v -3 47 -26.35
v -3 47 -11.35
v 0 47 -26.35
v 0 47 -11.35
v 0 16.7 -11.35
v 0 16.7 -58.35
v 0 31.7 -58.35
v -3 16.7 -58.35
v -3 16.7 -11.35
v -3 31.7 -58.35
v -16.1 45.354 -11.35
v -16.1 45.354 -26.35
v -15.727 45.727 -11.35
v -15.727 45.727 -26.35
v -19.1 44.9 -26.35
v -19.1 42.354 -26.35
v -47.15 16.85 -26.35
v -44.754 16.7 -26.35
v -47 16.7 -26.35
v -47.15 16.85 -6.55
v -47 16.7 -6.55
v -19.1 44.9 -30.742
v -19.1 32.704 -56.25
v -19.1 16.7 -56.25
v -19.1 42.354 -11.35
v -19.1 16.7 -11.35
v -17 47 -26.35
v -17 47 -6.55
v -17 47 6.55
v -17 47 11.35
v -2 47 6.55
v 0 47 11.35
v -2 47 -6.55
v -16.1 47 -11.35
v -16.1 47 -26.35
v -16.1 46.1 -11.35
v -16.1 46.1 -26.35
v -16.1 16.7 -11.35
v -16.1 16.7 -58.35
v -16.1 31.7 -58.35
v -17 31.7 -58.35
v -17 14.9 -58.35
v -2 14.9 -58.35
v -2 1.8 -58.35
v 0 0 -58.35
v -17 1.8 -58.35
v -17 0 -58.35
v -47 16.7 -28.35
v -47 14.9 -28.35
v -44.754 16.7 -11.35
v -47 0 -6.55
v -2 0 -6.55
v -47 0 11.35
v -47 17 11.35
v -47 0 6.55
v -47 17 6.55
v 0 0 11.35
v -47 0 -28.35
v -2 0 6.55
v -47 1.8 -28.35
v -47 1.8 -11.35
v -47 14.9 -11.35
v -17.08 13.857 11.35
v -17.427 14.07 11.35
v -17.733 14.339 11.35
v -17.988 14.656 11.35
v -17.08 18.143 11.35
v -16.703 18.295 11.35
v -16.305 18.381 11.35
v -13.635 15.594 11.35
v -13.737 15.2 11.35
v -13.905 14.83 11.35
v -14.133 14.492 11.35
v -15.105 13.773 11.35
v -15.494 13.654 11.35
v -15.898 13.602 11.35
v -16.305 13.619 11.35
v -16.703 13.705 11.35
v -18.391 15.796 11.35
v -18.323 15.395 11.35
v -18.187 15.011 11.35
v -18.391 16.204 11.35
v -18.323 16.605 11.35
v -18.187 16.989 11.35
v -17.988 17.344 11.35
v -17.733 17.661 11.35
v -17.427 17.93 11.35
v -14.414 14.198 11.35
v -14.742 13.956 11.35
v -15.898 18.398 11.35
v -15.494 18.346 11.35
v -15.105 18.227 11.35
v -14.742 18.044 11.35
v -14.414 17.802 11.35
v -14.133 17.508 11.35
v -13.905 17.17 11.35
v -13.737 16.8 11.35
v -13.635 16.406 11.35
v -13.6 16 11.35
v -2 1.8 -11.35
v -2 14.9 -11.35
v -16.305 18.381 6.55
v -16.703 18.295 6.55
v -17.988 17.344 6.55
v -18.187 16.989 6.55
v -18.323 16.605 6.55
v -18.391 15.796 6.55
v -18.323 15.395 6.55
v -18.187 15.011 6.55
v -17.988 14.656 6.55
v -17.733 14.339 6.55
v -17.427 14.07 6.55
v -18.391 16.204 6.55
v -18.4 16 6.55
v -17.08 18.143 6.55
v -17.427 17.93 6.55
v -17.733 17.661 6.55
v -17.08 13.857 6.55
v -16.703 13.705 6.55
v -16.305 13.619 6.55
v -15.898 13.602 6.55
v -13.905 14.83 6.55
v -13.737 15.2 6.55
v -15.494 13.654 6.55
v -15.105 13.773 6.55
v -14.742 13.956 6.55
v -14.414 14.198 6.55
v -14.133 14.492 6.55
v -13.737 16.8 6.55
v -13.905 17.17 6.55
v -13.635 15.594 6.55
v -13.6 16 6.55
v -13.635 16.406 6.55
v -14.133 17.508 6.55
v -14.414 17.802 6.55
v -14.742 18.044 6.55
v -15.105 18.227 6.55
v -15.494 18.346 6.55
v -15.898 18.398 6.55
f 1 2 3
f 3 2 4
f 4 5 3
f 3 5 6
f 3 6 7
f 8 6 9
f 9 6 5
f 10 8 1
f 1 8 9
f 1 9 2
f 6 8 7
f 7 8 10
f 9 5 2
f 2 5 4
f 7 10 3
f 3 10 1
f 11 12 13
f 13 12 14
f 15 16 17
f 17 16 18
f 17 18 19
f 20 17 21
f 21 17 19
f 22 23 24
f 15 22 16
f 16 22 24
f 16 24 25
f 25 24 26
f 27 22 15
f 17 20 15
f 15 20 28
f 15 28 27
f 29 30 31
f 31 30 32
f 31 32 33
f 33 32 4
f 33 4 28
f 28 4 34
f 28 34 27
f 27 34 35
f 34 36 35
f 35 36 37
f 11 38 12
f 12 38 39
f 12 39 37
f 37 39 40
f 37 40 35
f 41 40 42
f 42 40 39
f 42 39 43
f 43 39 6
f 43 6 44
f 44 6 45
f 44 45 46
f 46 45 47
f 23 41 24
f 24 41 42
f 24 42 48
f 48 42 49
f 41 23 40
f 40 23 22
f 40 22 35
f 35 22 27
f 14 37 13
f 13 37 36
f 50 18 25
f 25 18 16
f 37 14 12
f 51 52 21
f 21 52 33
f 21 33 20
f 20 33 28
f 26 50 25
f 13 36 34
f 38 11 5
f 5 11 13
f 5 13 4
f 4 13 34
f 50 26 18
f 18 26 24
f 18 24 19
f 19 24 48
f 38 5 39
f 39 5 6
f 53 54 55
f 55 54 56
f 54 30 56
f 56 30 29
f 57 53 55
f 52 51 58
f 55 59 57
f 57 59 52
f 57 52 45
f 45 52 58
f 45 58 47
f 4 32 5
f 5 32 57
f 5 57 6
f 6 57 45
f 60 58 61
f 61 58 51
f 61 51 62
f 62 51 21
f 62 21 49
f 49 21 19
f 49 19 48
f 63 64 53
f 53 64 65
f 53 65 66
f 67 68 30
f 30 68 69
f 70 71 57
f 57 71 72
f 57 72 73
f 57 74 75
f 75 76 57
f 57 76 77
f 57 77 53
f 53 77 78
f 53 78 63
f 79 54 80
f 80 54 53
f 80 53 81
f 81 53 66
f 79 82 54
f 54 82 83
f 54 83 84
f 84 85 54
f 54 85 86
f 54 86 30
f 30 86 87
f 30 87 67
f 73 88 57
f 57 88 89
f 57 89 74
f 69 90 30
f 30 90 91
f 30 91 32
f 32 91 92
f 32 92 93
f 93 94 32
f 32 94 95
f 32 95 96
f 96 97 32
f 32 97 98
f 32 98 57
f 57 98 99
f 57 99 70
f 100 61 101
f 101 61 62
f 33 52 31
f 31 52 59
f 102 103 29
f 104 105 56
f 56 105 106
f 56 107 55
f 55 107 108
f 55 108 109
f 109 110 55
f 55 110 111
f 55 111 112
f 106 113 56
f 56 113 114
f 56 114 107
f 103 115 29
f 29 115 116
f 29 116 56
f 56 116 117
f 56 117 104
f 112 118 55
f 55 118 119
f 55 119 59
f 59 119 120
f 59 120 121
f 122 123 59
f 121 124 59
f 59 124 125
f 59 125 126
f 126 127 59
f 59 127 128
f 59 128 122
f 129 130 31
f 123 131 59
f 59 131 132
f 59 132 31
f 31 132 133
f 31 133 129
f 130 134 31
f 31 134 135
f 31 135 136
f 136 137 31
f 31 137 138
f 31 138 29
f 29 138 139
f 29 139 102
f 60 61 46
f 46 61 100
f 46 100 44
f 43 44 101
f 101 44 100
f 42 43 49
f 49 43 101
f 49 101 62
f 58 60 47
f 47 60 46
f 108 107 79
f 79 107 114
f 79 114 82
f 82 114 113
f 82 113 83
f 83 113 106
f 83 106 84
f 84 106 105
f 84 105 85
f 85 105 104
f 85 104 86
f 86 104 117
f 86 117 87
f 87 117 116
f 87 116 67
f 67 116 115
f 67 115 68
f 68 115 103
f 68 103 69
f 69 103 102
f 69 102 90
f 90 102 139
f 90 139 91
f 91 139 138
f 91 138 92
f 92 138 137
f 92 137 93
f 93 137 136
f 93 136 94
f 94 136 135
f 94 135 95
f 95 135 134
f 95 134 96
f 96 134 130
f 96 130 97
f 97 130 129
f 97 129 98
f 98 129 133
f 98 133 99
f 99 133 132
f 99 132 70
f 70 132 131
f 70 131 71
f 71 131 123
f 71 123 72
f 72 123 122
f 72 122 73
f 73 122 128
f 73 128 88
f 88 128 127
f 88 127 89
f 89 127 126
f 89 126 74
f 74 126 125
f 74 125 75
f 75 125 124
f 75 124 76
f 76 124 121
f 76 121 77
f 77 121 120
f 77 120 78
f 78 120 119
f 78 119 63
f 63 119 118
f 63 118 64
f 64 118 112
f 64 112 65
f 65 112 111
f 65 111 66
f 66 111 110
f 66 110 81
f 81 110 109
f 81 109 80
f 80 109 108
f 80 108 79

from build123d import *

# Parameters (mm, degrees)
BOSS_EXTRUDE1_DEPTH     = 11.35
CUT_EXTRUDE1_DEPTH      = 6.55
BOSS_EXTRUDE2_DEPTH     = 47
SKETCH5_W               = 3
SKETCH5_H               = 30.3
BOSS_EXTRUDE3_DEPTH     = 47
BOSS_EXTRUDE3_2_DEPTH   = 47
CUT_EXTRUDE2_DEPTH      = 31.3
CUT_EXTRUDE2_DEPTH_BACK = 17.7
CUT_EXTRUDE3_DEPTH      = 47
CUT_EXTRUDE4_DEPTH      = 48
SKETCH8_R               = 2.4
CUT_EXTRUDE5_DEPTH      = 4.8
SKETCH9_W               = 45
SKETCH9_H               = 13.1
CUT_EXTRUDE6_DEPTH      = 2
BOSS_EXTRUDE4_DEPTH     = 1.8


with BuildPart() as part:
    # Sketch1 → Boss-Extrude1 (new body, symmetric)
    with BuildSketch(Plane.XY):
        Polygon((0, 0), (0, 47), (-17, 47), (-47, 17), (-47, 0), align=None)
    extrude(amount=BOSS_EXTRUDE1_DEPTH, both=True)

    # Sketch2 → Cut-Extrude1 (cut, symmetric)
    with BuildSketch(Plane.XY):
        Polygon((-47, 17), (-47, 2), (-2, 2), (-2, 47), (-17, 47), align=None)
    extrude(amount=CUT_EXTRUDE1_DEPTH, both=True, mode=Mode.SUBTRACT)

    # Sketch3 → Boss-Extrude2 (add)
    with BuildSketch(Plane(origin=(0, 0, -11.35), x_dir=(-1, 0, 0), z_dir=(0, 0, -1))):
        Polygon((0, 0), (0, 2), (0, 14.7), (0, 16.7), (47, 16.7), (47, 14.9), (2, 14.9), (2, 1.8), (47, 1.8), (47, 0), align=None)
    extrude(amount=BOSS_EXTRUDE2_DEPTH)

    # Sketch4 → Cut-Extrude2 (cut, two sides)
    with BuildSketch(Plane(origin=(0, 16.7, 0), x_dir=(1, 0, 0), z_dir=(0, 1, 0))) as cut_extrude2_sk:
        Polygon((-17, 58.35), (-47, 28.35), (-47, 58.35), align=None)
    extrude(amount=CUT_EXTRUDE2_DEPTH, mode=Mode.SUBTRACT)
    extrude(cut_extrude2_sk.sketch, amount=-CUT_EXTRUDE2_DEPTH_BACK, mode=Mode.SUBTRACT)

    # Sketch8 → Cut-Extrude5 (cut)
    with BuildSketch(Plane.XY.offset(11.35)):
        with Locations((-16, 16)):
            Circle(SKETCH8_R)
    extrude(amount=-CUT_EXTRUDE5_DEPTH, mode=Mode.SUBTRACT)

    # Sketch9 → Cut-Extrude6 (cut)
    with BuildSketch(Plane(origin=(0, 2, 0), x_dir=(1, 0, 0), z_dir=(0, 1, 0))):
        with Locations((-24.5, 0)):
            Rectangle(SKETCH9_W, SKETCH9_H)
    extrude(amount=-CUT_EXTRUDE6_DEPTH, mode=Mode.SUBTRACT)



with BuildPart() as body_2:
    # Sketch5 → Boss-Extrude3 (new body, through all)
    with BuildSketch(Plane(origin=(0, 0, -11.35), x_dir=(-1, 0, 0), z_dir=(0, 0, -1))):
        with Locations((1.5, 31.85)):
            Rectangle(SKETCH5_W, SKETCH5_H)
    extrude(amount=BOSS_EXTRUDE3_DEPTH)


with BuildPart() as body_3:
    # Sketch5 → Boss-Extrude3 2 (new body, through all)
    with BuildSketch(Plane(origin=(0, 0, -11.35), x_dir=(-1, 0, 0), z_dir=(0, 0, -1))):
        Polygon((16.1, 47), (16.1, 16.7), (19.1, 16.7), (19.1, 44.9), (17, 47), align=None)
    extrude(amount=BOSS_EXTRUDE3_2_DEPTH)

    # Sketch6 → Cut-Extrude3 (cut)
    with BuildSketch(Plane.XZ.offset(-16.7)):
        Polygon((-17, -58.35), (-18.7, -56.65), (-19.1, -56.25), (-19.1, -58.35), (-18.7, -58.35), align=None)
    extrude(amount=-CUT_EXTRUDE3_DEPTH, mode=Mode.SUBTRACT)


with BuildPart() as cut_extrude4_tool:
    # Sketch7 → Cut-Extrude4 (new body, through all)
    with BuildSketch(Plane(origin=(0, 0, 0), x_dir=(0, 0, -1), z_dir=(1, 0, 0))):
        Polygon((58.35, 31.7), (26.35, 47), (58.35, 47), align=None)
    extrude(amount=-CUT_EXTRUDE4_DEPTH)


with BuildPart() as body_2_1:
    add(body_2.part)

    # Cut-Extrude4: cut by cut_extrude4_tool
    add(cut_extrude4_tool.part, mode=Mode.SUBTRACT)


with BuildPart() as body_3_1:
    add(body_3.part)

    # Cut-Extrude4: cut by cut_extrude4_tool
    add(cut_extrude4_tool.part, mode=Mode.SUBTRACT)


with BuildPart() as part_1:
    add(part.part)

    add(body_3_1.part)  # Boss-Extrude4 merges body 3
    # Sketch10 → Boss-Extrude4 (add)
    with BuildSketch(Plane(origin=(-32, 32, 0), x_dir=(0, 0, 1), z_dir=(-0.707106781, 0.707106781, 0))):
        Polygon((-11.35, -21.42533547), (-6.55, -21.42533547), (-6.55, 21.213203436), (-26.35, 21.213203436), (-26.35, -21.42533547), align=None)
    extrude(amount=-BOSS_EXTRUDE4_DEPTH)


solid = Compound([body_2_1.part, part_1.part])
